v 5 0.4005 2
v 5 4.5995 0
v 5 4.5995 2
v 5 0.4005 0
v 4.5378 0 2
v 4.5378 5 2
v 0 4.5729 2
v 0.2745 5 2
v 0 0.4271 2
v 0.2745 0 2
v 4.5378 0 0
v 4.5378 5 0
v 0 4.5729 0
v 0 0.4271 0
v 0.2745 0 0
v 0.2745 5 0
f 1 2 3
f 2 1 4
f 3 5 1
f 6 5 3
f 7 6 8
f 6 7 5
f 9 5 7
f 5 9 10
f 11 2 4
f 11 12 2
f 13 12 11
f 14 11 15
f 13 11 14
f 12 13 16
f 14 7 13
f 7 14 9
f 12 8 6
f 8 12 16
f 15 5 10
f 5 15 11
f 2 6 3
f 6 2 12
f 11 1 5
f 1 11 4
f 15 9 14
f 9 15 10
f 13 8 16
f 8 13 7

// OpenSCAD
// // ex.1
// size = 50;
// translate([size, size, 0]) {
//     cube(size);
// }
// translate([0, 0, size/2]){
//     sphere(d=size);
// }

// // ex.2
// radius = 30;
// color("purple", 1){
//     sphere(radius);
//     translate([115, 0, 0]){
//         sphere(radius);
//     }
//     rotate([0, 90, 0]){
//         cylinder(h=115, r=radius/2);
//     }
// }

// // ex.3
// r=15;
// difference(){
//     cube(r*2);
//     translate([r, r, -0.05]){
//         cylinder(h=r*2.1, d=r);
//     }
// }

// ex.4
// r=15;
// translate([0, 0, 30]){
//     intersection() {
//         translate([0,0,0])
//             cube(r*2);
//         translate([r, r, r]){
//             sphere(r/sin(atan(1/sqrt(2)))-r/10);
//         }
//     }
// }

// ex.4a beveled cube
l=5;
r=l/2;
d=2;
intersection() {
    translate([0,0,0])
        cube([r*2, r*2, d]);
    translate([r, r, -d*0.01]){
        cylinder(h=d*1.02, d=r*1.6/sin(atan(1/sqrt(2)))-r/12);
    }
}   
